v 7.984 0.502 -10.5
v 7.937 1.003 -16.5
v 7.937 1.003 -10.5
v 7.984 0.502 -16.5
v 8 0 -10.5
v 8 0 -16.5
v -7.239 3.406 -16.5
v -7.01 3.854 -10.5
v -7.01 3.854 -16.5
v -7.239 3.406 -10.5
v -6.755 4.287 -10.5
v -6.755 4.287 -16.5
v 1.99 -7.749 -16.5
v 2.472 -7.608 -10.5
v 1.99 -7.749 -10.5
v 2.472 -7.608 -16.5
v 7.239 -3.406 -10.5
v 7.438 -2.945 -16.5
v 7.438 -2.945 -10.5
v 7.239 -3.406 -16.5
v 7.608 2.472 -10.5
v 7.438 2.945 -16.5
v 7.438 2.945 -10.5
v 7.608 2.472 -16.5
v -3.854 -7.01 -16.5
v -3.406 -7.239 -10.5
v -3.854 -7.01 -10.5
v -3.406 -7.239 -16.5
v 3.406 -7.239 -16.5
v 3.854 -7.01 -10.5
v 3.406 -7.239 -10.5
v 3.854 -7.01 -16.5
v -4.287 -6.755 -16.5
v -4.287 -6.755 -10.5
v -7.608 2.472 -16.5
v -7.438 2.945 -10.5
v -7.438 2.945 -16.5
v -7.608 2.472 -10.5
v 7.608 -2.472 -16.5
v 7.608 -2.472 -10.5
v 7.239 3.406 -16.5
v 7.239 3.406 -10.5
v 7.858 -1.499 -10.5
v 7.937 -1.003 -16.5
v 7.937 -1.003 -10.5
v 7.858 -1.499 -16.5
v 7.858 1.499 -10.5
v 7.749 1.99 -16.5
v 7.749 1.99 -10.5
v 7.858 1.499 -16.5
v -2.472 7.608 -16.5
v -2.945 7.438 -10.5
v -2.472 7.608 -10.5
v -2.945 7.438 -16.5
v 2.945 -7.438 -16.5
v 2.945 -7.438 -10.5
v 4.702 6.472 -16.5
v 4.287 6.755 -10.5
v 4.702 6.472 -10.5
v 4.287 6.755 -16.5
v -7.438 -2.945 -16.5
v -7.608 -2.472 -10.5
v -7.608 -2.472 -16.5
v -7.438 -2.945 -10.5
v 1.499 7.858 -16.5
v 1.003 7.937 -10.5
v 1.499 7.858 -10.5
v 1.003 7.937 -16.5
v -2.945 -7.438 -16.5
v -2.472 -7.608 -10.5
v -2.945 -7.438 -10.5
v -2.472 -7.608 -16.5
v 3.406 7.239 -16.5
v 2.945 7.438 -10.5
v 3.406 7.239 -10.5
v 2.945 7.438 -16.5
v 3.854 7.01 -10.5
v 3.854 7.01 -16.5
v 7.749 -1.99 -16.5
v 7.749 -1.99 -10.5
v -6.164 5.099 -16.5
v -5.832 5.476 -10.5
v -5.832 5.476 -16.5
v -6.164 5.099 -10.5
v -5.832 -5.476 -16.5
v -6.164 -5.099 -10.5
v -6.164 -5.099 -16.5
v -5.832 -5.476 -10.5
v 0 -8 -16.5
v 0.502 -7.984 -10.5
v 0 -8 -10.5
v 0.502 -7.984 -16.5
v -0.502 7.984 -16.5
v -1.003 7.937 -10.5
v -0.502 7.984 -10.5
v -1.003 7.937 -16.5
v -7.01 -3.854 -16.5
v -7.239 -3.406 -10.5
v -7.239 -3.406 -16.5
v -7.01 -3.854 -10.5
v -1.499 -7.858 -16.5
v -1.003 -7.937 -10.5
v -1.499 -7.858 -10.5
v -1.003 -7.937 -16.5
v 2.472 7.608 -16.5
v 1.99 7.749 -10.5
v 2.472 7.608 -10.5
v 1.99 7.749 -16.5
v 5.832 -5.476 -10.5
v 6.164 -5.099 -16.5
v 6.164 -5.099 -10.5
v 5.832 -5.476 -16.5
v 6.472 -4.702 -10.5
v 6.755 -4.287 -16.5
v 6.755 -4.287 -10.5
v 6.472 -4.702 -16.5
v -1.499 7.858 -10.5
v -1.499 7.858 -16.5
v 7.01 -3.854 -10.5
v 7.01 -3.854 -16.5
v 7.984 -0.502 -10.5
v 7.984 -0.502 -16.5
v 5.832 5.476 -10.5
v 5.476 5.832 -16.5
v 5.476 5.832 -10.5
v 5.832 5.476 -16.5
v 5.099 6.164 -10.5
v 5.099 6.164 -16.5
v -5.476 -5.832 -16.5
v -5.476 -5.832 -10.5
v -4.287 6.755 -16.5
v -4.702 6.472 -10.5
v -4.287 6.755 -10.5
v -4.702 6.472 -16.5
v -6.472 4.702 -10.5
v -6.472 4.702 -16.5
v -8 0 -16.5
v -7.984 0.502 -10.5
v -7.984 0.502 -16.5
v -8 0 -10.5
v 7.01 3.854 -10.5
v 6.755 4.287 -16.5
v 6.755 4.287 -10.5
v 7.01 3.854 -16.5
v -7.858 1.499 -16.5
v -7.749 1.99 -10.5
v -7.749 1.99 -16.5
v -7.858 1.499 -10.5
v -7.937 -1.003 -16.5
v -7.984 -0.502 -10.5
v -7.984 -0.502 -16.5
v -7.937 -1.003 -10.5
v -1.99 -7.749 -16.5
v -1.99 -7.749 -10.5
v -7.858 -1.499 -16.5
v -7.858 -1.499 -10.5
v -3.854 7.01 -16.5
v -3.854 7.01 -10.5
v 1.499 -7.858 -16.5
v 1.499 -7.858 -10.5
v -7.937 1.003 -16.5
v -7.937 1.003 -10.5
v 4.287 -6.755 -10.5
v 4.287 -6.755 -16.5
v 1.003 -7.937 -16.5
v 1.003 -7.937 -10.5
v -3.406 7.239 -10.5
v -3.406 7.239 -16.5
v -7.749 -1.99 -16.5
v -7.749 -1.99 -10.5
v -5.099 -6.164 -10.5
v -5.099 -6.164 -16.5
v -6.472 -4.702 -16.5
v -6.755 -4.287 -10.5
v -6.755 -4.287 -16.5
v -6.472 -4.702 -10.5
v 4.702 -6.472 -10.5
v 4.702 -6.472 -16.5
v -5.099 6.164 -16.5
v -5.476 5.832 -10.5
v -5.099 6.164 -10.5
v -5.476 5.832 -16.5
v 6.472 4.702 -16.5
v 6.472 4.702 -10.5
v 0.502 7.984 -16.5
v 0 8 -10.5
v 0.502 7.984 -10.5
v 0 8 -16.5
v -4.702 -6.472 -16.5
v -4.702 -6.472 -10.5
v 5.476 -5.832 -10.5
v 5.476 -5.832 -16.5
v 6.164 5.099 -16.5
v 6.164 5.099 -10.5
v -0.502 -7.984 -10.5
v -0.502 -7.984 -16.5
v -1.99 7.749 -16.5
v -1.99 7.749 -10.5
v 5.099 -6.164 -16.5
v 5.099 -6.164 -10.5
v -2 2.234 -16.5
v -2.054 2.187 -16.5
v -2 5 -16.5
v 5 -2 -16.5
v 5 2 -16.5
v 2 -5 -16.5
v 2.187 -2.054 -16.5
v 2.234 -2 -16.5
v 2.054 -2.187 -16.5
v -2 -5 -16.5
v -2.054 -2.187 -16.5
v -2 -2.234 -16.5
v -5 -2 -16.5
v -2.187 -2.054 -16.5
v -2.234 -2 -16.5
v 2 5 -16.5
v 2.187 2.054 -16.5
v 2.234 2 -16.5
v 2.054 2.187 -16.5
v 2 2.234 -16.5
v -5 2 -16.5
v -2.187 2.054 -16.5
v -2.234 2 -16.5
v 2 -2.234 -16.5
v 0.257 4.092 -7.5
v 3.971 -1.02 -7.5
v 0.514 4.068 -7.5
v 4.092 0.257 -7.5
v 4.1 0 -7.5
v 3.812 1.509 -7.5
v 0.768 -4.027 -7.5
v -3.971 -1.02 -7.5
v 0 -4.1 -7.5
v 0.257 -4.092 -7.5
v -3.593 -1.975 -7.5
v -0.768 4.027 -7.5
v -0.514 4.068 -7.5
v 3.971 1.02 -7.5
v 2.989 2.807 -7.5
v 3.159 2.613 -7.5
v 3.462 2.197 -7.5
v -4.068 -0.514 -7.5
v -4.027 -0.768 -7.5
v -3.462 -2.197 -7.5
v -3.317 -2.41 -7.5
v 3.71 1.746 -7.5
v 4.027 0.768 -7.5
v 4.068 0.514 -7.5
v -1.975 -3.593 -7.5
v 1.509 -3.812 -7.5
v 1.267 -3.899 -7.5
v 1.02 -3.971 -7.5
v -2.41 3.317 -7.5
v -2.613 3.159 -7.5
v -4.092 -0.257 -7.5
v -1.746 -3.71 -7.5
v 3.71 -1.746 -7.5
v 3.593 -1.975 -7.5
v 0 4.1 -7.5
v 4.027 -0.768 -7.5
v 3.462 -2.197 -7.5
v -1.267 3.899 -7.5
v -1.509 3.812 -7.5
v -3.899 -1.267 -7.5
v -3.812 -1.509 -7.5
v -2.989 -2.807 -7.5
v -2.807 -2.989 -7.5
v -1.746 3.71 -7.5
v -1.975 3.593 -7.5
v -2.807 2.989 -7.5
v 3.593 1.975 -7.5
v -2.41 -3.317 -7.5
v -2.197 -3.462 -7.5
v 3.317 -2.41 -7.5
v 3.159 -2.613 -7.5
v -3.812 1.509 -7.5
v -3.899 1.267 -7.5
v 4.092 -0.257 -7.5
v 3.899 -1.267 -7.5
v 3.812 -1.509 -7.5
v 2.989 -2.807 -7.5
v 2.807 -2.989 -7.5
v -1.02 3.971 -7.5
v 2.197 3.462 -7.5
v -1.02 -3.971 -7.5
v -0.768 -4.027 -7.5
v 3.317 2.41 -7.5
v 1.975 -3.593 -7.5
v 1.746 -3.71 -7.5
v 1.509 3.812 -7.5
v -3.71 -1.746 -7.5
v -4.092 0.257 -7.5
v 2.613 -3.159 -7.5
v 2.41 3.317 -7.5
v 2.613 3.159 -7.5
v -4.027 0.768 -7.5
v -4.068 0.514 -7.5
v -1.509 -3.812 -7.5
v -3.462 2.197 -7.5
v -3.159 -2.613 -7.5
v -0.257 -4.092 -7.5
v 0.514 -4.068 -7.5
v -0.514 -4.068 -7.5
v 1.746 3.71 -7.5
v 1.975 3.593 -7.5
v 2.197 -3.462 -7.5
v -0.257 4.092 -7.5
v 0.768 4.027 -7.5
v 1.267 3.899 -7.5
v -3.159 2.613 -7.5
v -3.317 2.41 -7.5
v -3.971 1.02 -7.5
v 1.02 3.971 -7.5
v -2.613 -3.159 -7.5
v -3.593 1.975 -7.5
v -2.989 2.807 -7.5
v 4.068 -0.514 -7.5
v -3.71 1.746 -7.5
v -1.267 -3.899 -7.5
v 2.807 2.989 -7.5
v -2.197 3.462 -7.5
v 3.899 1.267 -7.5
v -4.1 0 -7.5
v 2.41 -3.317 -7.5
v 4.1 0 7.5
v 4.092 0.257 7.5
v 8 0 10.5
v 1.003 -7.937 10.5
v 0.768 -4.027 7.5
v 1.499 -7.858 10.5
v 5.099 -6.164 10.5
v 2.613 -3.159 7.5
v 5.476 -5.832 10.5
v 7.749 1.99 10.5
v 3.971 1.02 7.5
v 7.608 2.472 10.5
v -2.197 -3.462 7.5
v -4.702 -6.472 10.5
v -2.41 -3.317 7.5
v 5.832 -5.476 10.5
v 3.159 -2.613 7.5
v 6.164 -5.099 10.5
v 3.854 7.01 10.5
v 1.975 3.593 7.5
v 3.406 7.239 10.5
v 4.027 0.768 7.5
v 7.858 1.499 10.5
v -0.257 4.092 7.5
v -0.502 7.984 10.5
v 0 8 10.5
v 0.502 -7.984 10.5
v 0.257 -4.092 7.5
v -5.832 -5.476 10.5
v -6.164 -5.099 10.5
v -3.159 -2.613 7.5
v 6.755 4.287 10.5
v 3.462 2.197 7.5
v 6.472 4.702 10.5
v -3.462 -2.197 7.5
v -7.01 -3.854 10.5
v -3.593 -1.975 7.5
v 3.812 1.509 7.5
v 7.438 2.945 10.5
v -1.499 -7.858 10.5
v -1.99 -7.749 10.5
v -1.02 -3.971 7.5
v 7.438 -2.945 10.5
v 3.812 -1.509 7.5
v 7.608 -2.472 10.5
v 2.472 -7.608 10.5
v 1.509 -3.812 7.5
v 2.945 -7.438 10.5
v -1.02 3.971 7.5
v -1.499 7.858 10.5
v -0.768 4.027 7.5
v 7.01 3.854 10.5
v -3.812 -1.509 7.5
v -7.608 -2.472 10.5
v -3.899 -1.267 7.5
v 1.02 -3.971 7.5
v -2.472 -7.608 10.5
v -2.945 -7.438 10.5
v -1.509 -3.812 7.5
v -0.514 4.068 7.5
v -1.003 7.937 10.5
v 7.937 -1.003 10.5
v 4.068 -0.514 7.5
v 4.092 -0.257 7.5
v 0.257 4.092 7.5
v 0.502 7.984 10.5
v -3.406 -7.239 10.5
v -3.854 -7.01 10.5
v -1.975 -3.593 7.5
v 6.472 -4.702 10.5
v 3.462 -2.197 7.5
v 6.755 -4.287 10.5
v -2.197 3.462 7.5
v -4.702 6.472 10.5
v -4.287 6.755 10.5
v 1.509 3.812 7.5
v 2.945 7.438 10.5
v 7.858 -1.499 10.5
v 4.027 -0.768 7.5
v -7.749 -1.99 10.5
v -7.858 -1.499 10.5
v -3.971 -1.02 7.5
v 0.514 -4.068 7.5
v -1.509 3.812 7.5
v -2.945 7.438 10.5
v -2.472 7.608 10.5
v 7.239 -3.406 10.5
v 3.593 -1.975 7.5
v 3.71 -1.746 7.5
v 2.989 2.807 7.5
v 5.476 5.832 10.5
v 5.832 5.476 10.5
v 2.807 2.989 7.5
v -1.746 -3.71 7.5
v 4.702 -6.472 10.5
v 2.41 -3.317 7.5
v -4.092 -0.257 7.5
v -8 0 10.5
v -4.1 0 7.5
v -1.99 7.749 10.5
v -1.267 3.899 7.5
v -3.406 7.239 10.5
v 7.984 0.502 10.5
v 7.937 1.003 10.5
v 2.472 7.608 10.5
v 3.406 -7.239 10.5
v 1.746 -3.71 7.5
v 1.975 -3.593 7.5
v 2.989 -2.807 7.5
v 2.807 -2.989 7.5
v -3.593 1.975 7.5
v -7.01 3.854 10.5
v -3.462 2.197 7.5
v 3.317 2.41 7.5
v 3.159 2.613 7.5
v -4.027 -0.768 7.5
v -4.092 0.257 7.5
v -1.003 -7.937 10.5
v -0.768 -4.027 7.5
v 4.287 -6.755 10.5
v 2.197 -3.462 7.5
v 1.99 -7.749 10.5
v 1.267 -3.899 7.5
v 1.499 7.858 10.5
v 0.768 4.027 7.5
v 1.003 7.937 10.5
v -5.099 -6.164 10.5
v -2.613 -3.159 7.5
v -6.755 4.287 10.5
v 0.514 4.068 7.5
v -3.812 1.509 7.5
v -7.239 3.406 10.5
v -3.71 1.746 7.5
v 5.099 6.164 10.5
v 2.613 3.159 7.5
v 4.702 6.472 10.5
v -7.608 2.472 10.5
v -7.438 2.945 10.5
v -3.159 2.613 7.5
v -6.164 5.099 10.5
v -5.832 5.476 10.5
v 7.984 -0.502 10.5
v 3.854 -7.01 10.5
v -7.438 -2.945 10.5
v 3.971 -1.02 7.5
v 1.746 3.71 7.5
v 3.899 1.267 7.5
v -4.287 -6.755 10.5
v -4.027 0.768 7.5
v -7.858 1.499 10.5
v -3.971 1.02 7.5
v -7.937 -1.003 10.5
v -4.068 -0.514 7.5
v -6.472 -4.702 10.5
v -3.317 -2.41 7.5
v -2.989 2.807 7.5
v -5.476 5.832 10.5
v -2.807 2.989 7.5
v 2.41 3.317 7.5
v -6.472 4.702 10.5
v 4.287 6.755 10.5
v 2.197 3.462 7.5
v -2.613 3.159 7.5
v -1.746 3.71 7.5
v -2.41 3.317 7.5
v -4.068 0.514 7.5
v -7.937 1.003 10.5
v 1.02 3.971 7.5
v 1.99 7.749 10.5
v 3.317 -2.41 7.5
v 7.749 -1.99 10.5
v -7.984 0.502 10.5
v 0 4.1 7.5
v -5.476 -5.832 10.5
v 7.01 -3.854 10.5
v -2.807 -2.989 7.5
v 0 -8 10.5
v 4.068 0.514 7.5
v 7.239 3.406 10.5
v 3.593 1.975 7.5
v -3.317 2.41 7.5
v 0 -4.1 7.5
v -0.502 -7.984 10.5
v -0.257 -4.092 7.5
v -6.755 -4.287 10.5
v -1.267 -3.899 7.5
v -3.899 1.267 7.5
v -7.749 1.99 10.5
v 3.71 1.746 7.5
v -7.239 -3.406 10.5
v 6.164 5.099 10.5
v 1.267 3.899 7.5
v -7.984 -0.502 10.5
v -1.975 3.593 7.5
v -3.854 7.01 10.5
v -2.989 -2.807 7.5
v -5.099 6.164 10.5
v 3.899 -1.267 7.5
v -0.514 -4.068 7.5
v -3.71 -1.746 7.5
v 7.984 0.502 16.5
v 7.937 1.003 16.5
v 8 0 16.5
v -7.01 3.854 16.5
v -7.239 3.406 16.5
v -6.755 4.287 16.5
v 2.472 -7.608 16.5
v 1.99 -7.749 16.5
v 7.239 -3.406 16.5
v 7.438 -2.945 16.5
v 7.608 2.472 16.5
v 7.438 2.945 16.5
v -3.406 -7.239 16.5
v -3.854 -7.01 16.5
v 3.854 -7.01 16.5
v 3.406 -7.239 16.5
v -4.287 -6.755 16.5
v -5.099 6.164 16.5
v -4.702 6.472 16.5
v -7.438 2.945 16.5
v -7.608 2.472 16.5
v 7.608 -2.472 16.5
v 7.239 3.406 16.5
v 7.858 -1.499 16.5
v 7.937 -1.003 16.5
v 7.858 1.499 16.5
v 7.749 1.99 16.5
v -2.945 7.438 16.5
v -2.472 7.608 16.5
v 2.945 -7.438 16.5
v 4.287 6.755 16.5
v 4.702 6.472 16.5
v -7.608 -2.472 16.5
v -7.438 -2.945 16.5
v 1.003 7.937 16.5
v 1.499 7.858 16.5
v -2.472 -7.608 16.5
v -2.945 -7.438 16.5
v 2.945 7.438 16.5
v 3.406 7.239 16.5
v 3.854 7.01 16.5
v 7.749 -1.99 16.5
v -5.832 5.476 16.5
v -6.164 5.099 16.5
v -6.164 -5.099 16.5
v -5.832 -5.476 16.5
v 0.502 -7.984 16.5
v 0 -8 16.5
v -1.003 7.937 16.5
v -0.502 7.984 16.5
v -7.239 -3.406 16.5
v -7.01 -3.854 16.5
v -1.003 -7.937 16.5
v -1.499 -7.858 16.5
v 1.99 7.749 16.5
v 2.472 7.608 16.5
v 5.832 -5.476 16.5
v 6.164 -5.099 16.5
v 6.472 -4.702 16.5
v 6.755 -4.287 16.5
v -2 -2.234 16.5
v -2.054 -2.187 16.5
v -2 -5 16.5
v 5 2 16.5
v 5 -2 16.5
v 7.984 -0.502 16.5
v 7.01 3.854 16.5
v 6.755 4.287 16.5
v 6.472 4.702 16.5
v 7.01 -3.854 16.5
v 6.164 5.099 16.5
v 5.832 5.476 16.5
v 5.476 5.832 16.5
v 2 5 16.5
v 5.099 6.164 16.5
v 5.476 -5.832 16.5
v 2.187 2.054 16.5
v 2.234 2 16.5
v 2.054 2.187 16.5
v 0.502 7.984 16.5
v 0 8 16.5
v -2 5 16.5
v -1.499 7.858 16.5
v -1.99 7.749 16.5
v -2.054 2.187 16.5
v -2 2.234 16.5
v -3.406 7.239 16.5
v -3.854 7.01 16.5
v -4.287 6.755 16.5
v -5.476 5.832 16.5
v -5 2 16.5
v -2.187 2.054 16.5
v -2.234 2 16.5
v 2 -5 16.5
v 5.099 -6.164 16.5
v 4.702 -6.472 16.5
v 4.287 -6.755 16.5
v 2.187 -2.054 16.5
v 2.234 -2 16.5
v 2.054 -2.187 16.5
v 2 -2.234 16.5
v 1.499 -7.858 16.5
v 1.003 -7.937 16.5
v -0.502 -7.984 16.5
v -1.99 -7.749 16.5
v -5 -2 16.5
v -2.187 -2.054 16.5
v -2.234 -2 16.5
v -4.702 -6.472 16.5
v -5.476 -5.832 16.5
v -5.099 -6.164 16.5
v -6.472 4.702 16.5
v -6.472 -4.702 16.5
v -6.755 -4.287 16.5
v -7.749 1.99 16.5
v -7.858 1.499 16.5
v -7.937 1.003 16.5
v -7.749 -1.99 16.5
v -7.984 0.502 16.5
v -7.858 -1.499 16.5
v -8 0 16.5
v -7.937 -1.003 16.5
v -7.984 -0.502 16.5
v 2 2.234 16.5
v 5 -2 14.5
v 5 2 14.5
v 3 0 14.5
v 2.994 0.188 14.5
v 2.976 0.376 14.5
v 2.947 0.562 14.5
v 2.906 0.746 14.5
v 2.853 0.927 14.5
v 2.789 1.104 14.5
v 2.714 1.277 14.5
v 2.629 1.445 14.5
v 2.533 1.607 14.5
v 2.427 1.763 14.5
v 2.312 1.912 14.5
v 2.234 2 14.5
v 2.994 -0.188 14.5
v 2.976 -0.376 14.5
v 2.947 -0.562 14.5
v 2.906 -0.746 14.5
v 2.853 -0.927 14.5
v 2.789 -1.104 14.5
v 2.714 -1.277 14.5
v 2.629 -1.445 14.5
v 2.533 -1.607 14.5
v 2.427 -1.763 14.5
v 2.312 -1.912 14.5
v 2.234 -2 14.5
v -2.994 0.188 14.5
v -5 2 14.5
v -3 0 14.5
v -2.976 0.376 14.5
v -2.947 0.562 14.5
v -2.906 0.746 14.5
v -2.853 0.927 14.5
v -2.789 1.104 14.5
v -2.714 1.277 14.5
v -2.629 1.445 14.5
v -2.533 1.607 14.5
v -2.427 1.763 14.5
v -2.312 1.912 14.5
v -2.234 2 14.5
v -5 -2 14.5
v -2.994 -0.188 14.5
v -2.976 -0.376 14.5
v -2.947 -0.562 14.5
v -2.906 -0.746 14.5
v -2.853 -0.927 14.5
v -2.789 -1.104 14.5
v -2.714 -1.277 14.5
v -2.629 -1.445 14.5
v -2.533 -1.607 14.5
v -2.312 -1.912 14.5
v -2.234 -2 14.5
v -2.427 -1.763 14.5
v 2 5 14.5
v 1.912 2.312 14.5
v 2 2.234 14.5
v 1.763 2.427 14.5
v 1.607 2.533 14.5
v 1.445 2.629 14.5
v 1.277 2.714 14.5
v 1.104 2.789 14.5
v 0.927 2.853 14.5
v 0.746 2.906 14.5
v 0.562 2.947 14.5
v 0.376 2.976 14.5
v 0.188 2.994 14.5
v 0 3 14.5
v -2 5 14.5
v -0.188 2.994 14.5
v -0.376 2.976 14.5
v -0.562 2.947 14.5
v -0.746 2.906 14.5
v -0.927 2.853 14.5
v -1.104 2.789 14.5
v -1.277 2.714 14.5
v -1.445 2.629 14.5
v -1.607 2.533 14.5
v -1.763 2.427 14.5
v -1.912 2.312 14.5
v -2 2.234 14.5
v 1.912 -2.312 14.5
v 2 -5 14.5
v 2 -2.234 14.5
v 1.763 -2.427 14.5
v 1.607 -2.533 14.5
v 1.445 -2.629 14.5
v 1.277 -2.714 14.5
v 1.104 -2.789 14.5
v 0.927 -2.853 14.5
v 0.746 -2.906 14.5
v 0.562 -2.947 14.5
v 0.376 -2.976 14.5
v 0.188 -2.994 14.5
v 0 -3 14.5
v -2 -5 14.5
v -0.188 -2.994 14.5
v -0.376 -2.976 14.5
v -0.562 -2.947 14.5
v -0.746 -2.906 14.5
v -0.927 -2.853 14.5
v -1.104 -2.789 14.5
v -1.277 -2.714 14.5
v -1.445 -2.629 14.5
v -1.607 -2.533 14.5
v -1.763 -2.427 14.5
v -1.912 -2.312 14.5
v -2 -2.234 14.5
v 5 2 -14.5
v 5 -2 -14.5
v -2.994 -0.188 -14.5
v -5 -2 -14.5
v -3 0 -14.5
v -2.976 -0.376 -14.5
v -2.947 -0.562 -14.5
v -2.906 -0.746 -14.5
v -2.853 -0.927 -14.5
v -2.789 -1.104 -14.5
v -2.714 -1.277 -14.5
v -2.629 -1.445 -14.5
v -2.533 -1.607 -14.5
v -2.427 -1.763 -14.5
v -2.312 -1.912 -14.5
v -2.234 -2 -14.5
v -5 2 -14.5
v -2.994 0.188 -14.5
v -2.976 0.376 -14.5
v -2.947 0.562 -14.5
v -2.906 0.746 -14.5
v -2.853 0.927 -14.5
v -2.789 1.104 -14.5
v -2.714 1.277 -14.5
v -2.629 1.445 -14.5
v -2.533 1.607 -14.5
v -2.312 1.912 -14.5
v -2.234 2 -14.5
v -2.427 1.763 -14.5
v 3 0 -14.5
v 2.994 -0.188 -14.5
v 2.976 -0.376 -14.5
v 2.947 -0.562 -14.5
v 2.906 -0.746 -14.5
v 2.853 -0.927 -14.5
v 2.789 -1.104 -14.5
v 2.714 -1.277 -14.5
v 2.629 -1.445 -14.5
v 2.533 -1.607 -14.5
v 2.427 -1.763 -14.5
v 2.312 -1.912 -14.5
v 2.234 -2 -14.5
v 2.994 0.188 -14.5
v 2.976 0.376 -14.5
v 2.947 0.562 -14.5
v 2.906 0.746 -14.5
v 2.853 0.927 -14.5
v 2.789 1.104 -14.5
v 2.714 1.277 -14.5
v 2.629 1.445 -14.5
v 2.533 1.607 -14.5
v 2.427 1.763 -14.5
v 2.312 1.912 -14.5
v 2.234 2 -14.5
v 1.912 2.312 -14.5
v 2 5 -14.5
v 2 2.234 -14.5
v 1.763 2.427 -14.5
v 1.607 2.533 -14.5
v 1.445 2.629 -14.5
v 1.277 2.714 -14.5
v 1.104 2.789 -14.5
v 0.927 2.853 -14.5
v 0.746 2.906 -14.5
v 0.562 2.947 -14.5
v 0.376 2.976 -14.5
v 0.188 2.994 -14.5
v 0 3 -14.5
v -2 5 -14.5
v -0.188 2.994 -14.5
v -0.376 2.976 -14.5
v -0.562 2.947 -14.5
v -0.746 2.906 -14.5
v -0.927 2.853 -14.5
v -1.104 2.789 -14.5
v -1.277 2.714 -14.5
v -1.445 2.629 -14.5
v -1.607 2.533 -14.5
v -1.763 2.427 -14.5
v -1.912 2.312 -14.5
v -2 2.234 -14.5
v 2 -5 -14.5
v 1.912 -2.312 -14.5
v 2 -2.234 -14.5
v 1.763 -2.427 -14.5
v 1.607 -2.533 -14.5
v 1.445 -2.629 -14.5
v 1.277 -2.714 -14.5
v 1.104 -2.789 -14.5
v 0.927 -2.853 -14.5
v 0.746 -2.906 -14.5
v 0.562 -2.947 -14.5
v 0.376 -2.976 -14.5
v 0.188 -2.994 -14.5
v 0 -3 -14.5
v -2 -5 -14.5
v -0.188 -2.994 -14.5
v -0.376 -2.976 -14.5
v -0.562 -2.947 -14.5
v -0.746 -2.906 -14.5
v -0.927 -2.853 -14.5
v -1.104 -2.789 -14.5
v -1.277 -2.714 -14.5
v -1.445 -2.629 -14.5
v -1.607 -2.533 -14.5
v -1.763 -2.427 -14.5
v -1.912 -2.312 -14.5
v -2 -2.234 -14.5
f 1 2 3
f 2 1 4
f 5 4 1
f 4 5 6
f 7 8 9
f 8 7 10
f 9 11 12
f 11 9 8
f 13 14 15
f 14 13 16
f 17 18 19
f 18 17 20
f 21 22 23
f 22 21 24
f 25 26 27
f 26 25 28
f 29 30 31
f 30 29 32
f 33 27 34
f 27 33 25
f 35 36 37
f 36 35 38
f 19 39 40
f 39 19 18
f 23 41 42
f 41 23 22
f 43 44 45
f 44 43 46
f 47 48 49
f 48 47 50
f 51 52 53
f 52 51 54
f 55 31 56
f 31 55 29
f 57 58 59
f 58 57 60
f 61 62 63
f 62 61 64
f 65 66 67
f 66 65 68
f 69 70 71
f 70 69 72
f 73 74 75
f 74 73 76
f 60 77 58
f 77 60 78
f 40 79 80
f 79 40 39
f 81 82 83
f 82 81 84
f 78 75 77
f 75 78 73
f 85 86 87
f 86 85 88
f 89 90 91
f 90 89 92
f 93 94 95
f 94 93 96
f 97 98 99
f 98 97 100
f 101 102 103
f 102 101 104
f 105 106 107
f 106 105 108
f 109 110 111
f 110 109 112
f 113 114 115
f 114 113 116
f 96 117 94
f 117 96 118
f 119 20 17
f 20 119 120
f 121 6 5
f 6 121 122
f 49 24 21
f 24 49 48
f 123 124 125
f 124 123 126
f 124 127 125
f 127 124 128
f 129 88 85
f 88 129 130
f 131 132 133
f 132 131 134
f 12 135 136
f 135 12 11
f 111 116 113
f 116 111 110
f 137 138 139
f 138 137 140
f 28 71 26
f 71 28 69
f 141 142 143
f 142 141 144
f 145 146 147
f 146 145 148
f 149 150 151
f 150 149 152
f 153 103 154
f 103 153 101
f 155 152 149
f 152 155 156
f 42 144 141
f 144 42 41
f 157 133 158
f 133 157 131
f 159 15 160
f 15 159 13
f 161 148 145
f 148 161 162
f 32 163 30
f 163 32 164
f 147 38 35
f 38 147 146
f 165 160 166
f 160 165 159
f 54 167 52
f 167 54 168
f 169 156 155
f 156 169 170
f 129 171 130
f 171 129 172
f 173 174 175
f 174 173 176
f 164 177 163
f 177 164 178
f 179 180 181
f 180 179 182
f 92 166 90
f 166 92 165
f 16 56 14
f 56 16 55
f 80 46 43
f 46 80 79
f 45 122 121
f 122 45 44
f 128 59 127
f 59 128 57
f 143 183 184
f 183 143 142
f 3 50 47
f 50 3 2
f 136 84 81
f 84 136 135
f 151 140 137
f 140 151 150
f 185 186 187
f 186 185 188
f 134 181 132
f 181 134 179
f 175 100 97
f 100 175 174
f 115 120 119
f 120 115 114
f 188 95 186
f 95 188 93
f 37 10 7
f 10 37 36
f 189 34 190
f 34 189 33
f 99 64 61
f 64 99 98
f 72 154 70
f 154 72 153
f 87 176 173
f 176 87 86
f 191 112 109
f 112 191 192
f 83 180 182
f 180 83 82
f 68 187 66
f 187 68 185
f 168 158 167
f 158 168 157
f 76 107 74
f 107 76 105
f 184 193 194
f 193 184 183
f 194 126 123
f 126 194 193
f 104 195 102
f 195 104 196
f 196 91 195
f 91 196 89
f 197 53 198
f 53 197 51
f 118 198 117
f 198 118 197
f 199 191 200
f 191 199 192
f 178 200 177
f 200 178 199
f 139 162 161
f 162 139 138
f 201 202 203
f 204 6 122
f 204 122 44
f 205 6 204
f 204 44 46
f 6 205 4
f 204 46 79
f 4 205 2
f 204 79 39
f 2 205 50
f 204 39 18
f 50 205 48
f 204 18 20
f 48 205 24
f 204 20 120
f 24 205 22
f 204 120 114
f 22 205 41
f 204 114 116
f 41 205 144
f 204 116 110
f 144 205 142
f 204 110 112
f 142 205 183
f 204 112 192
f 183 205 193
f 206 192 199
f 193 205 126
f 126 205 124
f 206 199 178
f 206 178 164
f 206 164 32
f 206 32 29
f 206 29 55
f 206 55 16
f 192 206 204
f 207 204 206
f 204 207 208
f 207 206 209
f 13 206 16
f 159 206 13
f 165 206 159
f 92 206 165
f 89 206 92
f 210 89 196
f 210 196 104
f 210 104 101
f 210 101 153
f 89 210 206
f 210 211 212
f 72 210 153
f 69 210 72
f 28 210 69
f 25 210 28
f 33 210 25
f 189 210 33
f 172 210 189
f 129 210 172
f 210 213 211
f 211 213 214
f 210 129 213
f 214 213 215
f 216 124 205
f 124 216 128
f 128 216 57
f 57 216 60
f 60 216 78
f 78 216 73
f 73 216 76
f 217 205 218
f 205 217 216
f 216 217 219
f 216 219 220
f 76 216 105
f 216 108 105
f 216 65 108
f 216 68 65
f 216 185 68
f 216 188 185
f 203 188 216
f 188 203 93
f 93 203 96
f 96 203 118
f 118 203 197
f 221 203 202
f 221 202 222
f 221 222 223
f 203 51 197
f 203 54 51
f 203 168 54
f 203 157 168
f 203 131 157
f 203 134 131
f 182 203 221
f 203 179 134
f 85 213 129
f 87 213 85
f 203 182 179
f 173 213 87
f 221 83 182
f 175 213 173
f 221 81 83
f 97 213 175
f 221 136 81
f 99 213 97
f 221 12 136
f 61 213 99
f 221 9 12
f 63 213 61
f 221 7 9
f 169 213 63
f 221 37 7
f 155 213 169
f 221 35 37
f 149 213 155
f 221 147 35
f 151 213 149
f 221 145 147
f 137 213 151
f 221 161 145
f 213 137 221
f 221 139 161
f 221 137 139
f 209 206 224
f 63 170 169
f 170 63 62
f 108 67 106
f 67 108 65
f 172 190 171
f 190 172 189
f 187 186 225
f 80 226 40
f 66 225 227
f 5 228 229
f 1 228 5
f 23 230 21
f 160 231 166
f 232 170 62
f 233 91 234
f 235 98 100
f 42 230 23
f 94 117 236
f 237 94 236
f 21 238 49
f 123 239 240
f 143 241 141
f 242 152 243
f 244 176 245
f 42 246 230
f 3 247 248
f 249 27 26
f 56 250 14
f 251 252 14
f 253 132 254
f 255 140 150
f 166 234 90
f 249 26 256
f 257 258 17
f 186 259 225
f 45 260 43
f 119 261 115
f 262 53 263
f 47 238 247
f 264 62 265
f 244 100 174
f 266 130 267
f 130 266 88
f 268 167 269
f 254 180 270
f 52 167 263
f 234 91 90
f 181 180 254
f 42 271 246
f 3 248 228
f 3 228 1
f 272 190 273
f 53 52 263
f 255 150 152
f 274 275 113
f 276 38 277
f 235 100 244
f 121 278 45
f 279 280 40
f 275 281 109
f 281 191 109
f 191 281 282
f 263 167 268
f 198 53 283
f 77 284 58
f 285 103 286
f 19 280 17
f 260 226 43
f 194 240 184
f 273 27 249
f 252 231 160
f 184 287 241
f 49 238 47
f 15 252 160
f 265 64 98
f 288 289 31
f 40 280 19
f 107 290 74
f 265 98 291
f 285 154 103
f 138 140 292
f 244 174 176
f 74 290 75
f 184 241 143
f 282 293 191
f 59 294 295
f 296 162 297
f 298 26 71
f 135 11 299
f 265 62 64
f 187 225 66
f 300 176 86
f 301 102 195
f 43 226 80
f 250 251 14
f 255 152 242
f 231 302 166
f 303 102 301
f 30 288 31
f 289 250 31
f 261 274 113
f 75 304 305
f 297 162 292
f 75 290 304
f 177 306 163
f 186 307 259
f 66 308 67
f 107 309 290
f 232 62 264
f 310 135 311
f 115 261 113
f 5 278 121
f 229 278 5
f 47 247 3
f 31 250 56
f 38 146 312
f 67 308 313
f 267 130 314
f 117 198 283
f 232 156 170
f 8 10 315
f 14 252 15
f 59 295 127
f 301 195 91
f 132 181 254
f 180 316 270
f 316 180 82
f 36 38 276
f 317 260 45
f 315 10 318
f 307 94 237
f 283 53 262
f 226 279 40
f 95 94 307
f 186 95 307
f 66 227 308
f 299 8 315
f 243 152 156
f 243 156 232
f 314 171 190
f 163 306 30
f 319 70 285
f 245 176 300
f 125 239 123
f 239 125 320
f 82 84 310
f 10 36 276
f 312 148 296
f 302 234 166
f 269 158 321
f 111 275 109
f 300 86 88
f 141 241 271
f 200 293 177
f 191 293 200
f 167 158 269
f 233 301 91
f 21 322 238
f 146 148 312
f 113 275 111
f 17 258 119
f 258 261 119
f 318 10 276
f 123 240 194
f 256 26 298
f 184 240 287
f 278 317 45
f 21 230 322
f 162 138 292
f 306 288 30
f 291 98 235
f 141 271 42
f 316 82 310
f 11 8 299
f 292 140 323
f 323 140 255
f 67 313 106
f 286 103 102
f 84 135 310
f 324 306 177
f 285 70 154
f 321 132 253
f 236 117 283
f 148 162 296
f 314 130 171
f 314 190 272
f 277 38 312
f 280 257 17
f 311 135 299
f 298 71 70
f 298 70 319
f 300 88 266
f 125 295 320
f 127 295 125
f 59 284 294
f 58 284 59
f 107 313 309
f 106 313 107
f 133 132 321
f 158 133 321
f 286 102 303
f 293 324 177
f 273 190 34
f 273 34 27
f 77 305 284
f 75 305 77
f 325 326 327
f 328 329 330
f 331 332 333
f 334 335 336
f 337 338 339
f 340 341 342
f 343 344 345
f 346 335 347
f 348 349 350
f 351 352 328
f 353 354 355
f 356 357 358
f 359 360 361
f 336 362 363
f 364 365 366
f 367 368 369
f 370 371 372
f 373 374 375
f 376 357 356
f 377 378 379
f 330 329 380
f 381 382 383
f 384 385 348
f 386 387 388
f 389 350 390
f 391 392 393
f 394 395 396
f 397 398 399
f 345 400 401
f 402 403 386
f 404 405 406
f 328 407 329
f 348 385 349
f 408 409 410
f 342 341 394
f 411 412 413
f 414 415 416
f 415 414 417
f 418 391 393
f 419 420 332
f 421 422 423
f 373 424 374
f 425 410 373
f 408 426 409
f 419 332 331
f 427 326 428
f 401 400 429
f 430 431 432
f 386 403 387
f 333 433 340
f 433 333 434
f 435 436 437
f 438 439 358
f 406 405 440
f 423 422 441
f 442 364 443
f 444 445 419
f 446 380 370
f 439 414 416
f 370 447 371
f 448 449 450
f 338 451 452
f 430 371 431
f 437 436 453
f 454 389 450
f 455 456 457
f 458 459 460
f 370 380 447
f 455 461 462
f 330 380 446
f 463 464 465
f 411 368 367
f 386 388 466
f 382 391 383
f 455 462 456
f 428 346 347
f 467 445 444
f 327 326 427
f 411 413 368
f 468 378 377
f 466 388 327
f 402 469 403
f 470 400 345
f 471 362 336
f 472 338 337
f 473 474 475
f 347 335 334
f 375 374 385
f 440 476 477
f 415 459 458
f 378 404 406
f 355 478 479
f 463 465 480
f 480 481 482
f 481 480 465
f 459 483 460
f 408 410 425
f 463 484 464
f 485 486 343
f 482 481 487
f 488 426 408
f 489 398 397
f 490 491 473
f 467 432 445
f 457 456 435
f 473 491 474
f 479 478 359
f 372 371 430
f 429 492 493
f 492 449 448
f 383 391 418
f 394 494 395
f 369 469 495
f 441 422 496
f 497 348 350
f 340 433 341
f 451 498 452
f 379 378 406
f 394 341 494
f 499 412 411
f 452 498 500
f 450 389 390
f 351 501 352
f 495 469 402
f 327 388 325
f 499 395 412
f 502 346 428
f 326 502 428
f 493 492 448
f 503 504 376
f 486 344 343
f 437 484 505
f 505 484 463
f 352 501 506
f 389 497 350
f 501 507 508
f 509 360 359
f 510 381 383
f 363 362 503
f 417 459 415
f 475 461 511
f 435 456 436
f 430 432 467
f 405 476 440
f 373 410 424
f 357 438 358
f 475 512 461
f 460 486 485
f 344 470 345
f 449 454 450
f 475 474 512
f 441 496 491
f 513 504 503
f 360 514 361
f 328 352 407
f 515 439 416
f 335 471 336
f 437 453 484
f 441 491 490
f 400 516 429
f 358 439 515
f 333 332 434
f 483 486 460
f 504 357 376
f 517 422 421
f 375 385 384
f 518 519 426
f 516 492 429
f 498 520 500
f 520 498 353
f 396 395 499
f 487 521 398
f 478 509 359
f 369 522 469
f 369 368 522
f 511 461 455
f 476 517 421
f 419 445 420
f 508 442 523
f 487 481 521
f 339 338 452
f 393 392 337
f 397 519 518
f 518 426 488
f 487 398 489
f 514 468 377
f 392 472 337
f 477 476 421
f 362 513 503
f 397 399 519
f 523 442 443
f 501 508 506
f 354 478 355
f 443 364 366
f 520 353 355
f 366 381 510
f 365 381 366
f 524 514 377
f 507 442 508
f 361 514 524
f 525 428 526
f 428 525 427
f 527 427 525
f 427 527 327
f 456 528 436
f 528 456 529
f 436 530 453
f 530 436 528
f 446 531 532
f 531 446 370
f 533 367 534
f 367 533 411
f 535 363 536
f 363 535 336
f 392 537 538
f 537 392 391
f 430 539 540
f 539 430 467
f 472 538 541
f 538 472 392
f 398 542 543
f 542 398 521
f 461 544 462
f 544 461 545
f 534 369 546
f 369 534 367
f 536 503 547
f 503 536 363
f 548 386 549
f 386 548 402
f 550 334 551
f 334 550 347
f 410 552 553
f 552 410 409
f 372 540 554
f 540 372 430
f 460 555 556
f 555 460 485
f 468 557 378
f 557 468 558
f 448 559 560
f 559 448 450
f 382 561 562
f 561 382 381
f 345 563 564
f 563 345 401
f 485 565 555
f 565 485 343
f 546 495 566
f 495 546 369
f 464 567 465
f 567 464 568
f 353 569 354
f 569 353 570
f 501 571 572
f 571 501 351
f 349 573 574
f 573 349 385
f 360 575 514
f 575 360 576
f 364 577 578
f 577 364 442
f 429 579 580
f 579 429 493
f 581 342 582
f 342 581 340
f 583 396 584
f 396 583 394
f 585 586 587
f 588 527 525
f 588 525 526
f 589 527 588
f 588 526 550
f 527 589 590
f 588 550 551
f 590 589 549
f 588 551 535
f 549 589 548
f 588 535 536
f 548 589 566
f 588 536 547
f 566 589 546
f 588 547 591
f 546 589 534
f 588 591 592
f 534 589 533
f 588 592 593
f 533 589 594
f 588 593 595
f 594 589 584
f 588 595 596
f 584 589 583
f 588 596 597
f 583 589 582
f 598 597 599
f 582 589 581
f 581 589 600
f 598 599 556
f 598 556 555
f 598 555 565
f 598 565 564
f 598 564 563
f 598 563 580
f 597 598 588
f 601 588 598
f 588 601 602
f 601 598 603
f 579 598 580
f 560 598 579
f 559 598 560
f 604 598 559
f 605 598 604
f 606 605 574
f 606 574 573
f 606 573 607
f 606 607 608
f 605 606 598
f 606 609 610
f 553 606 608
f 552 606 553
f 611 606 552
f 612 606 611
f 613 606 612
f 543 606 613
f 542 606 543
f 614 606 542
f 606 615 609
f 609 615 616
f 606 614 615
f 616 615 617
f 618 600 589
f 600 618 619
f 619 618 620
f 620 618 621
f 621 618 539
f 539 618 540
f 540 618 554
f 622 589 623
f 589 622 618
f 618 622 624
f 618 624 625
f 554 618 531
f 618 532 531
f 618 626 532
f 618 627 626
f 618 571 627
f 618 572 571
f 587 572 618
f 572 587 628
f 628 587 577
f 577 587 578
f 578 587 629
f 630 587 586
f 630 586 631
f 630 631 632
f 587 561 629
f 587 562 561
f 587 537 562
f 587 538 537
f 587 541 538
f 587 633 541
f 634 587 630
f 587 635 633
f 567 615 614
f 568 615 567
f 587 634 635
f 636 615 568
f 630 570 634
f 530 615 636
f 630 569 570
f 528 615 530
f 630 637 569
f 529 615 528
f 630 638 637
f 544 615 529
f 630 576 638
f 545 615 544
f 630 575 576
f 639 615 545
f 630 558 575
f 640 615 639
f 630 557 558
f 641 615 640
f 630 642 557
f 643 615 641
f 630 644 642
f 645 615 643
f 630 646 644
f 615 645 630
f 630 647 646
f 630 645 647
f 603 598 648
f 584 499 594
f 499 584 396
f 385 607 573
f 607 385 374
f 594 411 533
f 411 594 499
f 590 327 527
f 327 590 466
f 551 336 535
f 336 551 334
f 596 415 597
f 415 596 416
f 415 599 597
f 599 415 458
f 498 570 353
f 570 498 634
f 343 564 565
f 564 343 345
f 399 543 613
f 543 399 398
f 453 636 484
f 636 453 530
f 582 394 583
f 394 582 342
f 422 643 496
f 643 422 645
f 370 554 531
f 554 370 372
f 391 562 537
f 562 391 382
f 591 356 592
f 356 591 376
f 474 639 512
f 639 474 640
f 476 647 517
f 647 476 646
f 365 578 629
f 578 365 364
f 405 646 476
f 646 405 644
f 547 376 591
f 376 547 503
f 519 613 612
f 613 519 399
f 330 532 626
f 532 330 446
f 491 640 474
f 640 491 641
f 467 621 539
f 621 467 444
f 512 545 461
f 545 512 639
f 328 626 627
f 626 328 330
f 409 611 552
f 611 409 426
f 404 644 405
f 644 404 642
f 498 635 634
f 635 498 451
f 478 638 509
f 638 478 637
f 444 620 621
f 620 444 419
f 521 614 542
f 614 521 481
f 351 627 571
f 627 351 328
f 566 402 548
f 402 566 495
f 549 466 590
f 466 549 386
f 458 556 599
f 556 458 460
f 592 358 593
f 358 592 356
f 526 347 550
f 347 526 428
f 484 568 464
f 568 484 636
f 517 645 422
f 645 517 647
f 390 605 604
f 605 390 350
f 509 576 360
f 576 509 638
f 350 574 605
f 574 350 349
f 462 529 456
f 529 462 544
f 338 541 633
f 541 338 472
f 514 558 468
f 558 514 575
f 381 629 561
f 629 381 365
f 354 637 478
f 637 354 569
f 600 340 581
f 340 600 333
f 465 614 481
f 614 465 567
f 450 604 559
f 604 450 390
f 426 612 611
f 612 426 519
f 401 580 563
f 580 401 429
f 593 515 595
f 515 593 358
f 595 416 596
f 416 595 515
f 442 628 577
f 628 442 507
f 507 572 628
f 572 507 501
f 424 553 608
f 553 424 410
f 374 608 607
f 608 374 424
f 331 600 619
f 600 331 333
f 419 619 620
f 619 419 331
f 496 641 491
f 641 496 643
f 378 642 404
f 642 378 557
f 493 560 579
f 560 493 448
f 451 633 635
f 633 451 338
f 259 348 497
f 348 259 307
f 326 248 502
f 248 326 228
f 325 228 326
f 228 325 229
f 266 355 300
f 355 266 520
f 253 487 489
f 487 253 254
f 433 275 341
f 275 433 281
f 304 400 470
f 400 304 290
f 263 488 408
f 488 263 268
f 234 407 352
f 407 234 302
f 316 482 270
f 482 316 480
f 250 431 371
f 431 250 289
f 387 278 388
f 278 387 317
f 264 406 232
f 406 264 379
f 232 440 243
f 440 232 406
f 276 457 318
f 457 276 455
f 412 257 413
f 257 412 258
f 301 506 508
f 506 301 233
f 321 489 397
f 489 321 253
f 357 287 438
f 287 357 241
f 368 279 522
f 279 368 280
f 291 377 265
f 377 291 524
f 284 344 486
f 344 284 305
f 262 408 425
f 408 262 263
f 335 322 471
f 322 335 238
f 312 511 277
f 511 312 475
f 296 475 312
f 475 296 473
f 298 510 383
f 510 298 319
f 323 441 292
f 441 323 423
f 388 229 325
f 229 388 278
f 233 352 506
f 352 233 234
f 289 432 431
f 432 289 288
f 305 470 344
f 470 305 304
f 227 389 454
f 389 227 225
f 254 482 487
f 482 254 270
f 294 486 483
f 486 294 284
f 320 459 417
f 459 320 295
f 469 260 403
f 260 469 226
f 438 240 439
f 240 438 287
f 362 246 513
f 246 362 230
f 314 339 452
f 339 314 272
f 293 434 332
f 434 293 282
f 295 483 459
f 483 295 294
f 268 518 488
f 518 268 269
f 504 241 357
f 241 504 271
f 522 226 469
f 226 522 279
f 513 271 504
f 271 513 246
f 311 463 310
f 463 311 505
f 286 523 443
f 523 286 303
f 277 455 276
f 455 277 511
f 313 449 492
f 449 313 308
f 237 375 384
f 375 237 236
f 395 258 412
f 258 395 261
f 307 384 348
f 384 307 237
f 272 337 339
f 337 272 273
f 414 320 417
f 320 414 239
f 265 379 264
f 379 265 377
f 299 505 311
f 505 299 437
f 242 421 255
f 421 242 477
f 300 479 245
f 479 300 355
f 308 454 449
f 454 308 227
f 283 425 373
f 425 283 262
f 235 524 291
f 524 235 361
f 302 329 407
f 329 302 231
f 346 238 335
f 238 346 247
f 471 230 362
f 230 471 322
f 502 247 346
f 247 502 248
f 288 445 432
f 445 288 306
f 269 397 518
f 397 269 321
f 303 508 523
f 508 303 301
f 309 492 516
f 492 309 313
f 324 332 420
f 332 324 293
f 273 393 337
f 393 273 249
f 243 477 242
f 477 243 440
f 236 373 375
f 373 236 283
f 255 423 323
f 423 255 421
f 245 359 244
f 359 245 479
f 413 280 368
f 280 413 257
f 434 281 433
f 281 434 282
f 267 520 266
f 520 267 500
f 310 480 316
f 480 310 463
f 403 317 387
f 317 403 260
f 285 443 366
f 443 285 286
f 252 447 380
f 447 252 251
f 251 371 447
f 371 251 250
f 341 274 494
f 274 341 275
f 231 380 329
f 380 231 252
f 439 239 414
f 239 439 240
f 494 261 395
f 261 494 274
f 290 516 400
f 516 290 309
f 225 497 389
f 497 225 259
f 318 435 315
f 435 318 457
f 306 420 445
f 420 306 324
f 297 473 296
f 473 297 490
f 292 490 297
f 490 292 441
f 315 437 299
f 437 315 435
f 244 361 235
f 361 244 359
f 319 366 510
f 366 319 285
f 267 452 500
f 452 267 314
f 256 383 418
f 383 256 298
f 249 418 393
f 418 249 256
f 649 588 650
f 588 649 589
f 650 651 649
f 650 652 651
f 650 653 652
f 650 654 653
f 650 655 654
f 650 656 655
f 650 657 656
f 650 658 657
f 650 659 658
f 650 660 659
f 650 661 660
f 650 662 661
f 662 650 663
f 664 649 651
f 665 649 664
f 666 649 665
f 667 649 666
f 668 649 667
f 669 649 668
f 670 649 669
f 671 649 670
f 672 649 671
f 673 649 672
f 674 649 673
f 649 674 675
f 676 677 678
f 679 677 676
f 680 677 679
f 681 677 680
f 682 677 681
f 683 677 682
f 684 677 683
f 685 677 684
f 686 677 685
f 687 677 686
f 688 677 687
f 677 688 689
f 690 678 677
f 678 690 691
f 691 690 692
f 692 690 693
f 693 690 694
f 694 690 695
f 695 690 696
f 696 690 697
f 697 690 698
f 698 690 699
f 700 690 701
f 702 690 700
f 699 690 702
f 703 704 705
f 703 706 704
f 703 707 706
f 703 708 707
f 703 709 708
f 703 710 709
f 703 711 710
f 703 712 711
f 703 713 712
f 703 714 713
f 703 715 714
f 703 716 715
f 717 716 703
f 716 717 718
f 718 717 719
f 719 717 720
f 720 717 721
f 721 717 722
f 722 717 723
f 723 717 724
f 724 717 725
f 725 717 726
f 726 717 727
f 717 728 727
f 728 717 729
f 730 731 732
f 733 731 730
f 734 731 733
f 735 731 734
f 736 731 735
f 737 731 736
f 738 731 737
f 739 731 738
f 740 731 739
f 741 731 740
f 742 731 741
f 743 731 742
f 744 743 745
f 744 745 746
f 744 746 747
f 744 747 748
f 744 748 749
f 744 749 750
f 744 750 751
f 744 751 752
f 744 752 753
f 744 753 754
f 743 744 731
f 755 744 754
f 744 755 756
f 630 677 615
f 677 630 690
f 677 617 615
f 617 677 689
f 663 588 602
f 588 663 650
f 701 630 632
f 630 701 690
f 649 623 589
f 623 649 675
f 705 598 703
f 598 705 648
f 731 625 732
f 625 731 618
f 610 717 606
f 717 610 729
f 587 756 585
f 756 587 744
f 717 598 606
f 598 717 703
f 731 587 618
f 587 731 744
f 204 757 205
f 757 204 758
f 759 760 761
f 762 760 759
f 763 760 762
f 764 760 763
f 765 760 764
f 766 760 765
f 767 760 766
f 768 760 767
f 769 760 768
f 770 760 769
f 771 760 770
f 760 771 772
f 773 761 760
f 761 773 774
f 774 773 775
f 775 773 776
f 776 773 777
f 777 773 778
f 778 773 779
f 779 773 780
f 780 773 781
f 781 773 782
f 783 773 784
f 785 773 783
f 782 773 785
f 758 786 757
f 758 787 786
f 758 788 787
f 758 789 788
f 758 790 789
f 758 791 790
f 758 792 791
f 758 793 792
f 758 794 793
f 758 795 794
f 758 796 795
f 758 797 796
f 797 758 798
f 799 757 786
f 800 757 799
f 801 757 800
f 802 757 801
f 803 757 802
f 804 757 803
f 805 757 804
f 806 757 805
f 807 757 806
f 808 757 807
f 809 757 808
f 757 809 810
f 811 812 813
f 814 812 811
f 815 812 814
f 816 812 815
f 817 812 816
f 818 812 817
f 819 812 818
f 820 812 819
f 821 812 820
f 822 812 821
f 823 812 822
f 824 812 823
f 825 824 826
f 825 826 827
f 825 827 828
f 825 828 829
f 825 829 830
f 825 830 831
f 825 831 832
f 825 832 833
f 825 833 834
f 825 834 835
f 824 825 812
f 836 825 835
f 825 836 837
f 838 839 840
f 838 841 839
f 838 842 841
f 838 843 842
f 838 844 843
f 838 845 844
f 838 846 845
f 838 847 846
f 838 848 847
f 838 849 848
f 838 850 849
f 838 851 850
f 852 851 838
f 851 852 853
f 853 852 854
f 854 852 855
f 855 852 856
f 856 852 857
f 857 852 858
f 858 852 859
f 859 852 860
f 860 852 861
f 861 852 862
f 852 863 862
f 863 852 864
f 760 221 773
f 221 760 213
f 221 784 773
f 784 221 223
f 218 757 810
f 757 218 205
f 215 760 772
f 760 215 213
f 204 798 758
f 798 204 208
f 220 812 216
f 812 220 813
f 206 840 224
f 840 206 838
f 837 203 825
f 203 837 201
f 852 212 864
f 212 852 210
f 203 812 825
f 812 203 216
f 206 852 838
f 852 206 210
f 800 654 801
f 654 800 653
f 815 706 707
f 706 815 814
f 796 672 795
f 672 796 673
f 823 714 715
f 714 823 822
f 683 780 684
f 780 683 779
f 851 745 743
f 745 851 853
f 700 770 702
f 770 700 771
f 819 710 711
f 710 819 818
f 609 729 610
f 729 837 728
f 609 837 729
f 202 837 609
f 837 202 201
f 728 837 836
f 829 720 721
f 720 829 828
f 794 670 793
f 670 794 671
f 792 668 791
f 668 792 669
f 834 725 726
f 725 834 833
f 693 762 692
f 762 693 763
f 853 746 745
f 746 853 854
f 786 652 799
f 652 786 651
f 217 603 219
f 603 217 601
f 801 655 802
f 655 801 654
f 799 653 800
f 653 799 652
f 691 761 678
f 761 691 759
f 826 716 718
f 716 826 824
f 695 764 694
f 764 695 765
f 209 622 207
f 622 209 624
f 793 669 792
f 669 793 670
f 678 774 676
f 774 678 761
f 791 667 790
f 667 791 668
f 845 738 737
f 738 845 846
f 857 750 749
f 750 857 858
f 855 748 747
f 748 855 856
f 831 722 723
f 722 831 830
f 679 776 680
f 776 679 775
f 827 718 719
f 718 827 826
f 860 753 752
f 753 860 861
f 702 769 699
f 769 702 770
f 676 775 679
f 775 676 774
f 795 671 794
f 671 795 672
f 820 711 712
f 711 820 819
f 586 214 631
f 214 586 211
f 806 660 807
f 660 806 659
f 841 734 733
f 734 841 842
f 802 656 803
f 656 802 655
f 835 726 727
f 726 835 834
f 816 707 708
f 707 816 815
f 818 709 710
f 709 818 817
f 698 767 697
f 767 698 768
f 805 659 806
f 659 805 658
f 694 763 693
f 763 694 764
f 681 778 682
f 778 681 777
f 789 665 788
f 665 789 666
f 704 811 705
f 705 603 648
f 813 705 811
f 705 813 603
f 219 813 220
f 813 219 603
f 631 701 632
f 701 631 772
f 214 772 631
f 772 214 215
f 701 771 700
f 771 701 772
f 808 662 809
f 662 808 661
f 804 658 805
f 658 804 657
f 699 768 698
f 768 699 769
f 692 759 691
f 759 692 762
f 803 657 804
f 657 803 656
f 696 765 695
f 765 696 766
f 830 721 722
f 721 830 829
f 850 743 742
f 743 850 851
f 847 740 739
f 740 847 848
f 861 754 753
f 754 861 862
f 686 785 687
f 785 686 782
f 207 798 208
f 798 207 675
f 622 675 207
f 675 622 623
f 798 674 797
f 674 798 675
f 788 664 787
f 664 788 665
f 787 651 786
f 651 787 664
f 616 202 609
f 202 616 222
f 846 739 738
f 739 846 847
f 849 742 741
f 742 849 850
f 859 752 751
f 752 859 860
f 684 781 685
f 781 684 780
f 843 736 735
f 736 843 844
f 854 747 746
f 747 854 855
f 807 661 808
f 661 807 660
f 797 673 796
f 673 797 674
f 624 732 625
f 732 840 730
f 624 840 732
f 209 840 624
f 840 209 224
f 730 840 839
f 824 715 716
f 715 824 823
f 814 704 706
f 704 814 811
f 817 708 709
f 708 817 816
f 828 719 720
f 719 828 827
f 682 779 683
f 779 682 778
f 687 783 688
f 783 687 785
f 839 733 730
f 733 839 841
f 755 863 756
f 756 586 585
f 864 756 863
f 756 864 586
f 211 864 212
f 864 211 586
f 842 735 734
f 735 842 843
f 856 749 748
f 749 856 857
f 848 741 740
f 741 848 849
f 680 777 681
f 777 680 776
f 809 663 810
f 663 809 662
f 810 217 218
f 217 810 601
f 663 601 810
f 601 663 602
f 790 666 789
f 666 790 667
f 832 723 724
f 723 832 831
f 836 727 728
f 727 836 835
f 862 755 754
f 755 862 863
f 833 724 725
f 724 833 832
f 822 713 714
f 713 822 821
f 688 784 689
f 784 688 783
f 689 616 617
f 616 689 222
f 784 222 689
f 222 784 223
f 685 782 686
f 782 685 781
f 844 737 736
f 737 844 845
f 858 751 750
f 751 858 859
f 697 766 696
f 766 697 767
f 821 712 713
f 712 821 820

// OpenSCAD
// Parameters
axle_length = 33;
axle_diameter = 8.2;
outer_rim_diameter = 16;    // Rim diameter
rim_depth = 6;
transition_height = 3;      // Height of the transition/fillet
hole_diameter = 6;          // Diameter of the central hole
resolution = 100;           // Resolution for curved surfaces ($fn value)

// Phillips head parameters
phillips_depth = 2;         // Depth of the Phillips head cutout
phillips_width = 4;         // Width of each slot in the X
phillips_diameter = 10;      // Diameter of the Phillips head cutout

// Derived values
total_height = axle_length;

// Module for creating a Phillips head cutout
module phillips_head(diameter, width, depth, top_position) {
    if (top_position) {
        // Phillips head at the top
        union() {
            // First slot of the X
            translate([0, 0, total_height - depth/2])
                cube([diameter, width, depth], center=true);
            
            // Second slot of the X (rotated 90 degrees)
            translate([0, 0, total_height - depth/2])
                cube([width, diameter, depth], center=true);
        }
    } else {
        // Phillips head at the bottom
        union() {
            // First slot of the X
            translate([0, 0, depth/2])
                cube([diameter, width, depth], center=true);
            
            // Second slot of the X (rotated 90 degrees)
            translate([0, 0, depth/2])
                cube([width, diameter, depth], center=true);
        }
    }
}

// Center the whole part on the origin
translate([0, 0, -total_height/2]) {
    difference() {
        union() {
            // Main axle shaft
            cylinder(h = total_height, d = axle_diameter, $fn=resolution);
            
            // Bottom rim (flat on print plate, no transition on bottom)
            translate([0, 0, 0]) {
                // Rim cylinder
                cylinder(h = rim_depth, d = outer_rim_diameter, $fn=resolution);
                
                // Transition from rim to axle (only on the inner side)
                translate([0, 0, rim_depth])
                    cylinder(h = transition_height, d1 = outer_rim_diameter, d2 = axle_diameter, $fn=resolution);
            }
            
            // Top rim (flat on top, no transition on top)
            translate([0, 0, total_height - rim_depth]) {
                // Transition from axle to rim (only on the inner side)
                translate([0, 0, -transition_height])
                    cylinder(h = transition_height, d1 = axle_diameter, d2 = outer_rim_diameter, $fn=resolution);
                    
                // Rim cylinder
                cylinder(h = rim_depth, d = outer_rim_diameter, $fn=resolution);
            }
        }
        
        // Central hole through the entire axle
        cylinder(h = total_height + 0.2, d = hole_diameter, $fn=resolution, center = false);
        
        // Phillips head cutout on the top
        phillips_head(phillips_diameter, phillips_width, phillips_depth, true);
        
        // Phillips head cutout on the bottom
        phillips_head(phillips_diameter, phillips_width, phillips_depth, false);
    }
}
